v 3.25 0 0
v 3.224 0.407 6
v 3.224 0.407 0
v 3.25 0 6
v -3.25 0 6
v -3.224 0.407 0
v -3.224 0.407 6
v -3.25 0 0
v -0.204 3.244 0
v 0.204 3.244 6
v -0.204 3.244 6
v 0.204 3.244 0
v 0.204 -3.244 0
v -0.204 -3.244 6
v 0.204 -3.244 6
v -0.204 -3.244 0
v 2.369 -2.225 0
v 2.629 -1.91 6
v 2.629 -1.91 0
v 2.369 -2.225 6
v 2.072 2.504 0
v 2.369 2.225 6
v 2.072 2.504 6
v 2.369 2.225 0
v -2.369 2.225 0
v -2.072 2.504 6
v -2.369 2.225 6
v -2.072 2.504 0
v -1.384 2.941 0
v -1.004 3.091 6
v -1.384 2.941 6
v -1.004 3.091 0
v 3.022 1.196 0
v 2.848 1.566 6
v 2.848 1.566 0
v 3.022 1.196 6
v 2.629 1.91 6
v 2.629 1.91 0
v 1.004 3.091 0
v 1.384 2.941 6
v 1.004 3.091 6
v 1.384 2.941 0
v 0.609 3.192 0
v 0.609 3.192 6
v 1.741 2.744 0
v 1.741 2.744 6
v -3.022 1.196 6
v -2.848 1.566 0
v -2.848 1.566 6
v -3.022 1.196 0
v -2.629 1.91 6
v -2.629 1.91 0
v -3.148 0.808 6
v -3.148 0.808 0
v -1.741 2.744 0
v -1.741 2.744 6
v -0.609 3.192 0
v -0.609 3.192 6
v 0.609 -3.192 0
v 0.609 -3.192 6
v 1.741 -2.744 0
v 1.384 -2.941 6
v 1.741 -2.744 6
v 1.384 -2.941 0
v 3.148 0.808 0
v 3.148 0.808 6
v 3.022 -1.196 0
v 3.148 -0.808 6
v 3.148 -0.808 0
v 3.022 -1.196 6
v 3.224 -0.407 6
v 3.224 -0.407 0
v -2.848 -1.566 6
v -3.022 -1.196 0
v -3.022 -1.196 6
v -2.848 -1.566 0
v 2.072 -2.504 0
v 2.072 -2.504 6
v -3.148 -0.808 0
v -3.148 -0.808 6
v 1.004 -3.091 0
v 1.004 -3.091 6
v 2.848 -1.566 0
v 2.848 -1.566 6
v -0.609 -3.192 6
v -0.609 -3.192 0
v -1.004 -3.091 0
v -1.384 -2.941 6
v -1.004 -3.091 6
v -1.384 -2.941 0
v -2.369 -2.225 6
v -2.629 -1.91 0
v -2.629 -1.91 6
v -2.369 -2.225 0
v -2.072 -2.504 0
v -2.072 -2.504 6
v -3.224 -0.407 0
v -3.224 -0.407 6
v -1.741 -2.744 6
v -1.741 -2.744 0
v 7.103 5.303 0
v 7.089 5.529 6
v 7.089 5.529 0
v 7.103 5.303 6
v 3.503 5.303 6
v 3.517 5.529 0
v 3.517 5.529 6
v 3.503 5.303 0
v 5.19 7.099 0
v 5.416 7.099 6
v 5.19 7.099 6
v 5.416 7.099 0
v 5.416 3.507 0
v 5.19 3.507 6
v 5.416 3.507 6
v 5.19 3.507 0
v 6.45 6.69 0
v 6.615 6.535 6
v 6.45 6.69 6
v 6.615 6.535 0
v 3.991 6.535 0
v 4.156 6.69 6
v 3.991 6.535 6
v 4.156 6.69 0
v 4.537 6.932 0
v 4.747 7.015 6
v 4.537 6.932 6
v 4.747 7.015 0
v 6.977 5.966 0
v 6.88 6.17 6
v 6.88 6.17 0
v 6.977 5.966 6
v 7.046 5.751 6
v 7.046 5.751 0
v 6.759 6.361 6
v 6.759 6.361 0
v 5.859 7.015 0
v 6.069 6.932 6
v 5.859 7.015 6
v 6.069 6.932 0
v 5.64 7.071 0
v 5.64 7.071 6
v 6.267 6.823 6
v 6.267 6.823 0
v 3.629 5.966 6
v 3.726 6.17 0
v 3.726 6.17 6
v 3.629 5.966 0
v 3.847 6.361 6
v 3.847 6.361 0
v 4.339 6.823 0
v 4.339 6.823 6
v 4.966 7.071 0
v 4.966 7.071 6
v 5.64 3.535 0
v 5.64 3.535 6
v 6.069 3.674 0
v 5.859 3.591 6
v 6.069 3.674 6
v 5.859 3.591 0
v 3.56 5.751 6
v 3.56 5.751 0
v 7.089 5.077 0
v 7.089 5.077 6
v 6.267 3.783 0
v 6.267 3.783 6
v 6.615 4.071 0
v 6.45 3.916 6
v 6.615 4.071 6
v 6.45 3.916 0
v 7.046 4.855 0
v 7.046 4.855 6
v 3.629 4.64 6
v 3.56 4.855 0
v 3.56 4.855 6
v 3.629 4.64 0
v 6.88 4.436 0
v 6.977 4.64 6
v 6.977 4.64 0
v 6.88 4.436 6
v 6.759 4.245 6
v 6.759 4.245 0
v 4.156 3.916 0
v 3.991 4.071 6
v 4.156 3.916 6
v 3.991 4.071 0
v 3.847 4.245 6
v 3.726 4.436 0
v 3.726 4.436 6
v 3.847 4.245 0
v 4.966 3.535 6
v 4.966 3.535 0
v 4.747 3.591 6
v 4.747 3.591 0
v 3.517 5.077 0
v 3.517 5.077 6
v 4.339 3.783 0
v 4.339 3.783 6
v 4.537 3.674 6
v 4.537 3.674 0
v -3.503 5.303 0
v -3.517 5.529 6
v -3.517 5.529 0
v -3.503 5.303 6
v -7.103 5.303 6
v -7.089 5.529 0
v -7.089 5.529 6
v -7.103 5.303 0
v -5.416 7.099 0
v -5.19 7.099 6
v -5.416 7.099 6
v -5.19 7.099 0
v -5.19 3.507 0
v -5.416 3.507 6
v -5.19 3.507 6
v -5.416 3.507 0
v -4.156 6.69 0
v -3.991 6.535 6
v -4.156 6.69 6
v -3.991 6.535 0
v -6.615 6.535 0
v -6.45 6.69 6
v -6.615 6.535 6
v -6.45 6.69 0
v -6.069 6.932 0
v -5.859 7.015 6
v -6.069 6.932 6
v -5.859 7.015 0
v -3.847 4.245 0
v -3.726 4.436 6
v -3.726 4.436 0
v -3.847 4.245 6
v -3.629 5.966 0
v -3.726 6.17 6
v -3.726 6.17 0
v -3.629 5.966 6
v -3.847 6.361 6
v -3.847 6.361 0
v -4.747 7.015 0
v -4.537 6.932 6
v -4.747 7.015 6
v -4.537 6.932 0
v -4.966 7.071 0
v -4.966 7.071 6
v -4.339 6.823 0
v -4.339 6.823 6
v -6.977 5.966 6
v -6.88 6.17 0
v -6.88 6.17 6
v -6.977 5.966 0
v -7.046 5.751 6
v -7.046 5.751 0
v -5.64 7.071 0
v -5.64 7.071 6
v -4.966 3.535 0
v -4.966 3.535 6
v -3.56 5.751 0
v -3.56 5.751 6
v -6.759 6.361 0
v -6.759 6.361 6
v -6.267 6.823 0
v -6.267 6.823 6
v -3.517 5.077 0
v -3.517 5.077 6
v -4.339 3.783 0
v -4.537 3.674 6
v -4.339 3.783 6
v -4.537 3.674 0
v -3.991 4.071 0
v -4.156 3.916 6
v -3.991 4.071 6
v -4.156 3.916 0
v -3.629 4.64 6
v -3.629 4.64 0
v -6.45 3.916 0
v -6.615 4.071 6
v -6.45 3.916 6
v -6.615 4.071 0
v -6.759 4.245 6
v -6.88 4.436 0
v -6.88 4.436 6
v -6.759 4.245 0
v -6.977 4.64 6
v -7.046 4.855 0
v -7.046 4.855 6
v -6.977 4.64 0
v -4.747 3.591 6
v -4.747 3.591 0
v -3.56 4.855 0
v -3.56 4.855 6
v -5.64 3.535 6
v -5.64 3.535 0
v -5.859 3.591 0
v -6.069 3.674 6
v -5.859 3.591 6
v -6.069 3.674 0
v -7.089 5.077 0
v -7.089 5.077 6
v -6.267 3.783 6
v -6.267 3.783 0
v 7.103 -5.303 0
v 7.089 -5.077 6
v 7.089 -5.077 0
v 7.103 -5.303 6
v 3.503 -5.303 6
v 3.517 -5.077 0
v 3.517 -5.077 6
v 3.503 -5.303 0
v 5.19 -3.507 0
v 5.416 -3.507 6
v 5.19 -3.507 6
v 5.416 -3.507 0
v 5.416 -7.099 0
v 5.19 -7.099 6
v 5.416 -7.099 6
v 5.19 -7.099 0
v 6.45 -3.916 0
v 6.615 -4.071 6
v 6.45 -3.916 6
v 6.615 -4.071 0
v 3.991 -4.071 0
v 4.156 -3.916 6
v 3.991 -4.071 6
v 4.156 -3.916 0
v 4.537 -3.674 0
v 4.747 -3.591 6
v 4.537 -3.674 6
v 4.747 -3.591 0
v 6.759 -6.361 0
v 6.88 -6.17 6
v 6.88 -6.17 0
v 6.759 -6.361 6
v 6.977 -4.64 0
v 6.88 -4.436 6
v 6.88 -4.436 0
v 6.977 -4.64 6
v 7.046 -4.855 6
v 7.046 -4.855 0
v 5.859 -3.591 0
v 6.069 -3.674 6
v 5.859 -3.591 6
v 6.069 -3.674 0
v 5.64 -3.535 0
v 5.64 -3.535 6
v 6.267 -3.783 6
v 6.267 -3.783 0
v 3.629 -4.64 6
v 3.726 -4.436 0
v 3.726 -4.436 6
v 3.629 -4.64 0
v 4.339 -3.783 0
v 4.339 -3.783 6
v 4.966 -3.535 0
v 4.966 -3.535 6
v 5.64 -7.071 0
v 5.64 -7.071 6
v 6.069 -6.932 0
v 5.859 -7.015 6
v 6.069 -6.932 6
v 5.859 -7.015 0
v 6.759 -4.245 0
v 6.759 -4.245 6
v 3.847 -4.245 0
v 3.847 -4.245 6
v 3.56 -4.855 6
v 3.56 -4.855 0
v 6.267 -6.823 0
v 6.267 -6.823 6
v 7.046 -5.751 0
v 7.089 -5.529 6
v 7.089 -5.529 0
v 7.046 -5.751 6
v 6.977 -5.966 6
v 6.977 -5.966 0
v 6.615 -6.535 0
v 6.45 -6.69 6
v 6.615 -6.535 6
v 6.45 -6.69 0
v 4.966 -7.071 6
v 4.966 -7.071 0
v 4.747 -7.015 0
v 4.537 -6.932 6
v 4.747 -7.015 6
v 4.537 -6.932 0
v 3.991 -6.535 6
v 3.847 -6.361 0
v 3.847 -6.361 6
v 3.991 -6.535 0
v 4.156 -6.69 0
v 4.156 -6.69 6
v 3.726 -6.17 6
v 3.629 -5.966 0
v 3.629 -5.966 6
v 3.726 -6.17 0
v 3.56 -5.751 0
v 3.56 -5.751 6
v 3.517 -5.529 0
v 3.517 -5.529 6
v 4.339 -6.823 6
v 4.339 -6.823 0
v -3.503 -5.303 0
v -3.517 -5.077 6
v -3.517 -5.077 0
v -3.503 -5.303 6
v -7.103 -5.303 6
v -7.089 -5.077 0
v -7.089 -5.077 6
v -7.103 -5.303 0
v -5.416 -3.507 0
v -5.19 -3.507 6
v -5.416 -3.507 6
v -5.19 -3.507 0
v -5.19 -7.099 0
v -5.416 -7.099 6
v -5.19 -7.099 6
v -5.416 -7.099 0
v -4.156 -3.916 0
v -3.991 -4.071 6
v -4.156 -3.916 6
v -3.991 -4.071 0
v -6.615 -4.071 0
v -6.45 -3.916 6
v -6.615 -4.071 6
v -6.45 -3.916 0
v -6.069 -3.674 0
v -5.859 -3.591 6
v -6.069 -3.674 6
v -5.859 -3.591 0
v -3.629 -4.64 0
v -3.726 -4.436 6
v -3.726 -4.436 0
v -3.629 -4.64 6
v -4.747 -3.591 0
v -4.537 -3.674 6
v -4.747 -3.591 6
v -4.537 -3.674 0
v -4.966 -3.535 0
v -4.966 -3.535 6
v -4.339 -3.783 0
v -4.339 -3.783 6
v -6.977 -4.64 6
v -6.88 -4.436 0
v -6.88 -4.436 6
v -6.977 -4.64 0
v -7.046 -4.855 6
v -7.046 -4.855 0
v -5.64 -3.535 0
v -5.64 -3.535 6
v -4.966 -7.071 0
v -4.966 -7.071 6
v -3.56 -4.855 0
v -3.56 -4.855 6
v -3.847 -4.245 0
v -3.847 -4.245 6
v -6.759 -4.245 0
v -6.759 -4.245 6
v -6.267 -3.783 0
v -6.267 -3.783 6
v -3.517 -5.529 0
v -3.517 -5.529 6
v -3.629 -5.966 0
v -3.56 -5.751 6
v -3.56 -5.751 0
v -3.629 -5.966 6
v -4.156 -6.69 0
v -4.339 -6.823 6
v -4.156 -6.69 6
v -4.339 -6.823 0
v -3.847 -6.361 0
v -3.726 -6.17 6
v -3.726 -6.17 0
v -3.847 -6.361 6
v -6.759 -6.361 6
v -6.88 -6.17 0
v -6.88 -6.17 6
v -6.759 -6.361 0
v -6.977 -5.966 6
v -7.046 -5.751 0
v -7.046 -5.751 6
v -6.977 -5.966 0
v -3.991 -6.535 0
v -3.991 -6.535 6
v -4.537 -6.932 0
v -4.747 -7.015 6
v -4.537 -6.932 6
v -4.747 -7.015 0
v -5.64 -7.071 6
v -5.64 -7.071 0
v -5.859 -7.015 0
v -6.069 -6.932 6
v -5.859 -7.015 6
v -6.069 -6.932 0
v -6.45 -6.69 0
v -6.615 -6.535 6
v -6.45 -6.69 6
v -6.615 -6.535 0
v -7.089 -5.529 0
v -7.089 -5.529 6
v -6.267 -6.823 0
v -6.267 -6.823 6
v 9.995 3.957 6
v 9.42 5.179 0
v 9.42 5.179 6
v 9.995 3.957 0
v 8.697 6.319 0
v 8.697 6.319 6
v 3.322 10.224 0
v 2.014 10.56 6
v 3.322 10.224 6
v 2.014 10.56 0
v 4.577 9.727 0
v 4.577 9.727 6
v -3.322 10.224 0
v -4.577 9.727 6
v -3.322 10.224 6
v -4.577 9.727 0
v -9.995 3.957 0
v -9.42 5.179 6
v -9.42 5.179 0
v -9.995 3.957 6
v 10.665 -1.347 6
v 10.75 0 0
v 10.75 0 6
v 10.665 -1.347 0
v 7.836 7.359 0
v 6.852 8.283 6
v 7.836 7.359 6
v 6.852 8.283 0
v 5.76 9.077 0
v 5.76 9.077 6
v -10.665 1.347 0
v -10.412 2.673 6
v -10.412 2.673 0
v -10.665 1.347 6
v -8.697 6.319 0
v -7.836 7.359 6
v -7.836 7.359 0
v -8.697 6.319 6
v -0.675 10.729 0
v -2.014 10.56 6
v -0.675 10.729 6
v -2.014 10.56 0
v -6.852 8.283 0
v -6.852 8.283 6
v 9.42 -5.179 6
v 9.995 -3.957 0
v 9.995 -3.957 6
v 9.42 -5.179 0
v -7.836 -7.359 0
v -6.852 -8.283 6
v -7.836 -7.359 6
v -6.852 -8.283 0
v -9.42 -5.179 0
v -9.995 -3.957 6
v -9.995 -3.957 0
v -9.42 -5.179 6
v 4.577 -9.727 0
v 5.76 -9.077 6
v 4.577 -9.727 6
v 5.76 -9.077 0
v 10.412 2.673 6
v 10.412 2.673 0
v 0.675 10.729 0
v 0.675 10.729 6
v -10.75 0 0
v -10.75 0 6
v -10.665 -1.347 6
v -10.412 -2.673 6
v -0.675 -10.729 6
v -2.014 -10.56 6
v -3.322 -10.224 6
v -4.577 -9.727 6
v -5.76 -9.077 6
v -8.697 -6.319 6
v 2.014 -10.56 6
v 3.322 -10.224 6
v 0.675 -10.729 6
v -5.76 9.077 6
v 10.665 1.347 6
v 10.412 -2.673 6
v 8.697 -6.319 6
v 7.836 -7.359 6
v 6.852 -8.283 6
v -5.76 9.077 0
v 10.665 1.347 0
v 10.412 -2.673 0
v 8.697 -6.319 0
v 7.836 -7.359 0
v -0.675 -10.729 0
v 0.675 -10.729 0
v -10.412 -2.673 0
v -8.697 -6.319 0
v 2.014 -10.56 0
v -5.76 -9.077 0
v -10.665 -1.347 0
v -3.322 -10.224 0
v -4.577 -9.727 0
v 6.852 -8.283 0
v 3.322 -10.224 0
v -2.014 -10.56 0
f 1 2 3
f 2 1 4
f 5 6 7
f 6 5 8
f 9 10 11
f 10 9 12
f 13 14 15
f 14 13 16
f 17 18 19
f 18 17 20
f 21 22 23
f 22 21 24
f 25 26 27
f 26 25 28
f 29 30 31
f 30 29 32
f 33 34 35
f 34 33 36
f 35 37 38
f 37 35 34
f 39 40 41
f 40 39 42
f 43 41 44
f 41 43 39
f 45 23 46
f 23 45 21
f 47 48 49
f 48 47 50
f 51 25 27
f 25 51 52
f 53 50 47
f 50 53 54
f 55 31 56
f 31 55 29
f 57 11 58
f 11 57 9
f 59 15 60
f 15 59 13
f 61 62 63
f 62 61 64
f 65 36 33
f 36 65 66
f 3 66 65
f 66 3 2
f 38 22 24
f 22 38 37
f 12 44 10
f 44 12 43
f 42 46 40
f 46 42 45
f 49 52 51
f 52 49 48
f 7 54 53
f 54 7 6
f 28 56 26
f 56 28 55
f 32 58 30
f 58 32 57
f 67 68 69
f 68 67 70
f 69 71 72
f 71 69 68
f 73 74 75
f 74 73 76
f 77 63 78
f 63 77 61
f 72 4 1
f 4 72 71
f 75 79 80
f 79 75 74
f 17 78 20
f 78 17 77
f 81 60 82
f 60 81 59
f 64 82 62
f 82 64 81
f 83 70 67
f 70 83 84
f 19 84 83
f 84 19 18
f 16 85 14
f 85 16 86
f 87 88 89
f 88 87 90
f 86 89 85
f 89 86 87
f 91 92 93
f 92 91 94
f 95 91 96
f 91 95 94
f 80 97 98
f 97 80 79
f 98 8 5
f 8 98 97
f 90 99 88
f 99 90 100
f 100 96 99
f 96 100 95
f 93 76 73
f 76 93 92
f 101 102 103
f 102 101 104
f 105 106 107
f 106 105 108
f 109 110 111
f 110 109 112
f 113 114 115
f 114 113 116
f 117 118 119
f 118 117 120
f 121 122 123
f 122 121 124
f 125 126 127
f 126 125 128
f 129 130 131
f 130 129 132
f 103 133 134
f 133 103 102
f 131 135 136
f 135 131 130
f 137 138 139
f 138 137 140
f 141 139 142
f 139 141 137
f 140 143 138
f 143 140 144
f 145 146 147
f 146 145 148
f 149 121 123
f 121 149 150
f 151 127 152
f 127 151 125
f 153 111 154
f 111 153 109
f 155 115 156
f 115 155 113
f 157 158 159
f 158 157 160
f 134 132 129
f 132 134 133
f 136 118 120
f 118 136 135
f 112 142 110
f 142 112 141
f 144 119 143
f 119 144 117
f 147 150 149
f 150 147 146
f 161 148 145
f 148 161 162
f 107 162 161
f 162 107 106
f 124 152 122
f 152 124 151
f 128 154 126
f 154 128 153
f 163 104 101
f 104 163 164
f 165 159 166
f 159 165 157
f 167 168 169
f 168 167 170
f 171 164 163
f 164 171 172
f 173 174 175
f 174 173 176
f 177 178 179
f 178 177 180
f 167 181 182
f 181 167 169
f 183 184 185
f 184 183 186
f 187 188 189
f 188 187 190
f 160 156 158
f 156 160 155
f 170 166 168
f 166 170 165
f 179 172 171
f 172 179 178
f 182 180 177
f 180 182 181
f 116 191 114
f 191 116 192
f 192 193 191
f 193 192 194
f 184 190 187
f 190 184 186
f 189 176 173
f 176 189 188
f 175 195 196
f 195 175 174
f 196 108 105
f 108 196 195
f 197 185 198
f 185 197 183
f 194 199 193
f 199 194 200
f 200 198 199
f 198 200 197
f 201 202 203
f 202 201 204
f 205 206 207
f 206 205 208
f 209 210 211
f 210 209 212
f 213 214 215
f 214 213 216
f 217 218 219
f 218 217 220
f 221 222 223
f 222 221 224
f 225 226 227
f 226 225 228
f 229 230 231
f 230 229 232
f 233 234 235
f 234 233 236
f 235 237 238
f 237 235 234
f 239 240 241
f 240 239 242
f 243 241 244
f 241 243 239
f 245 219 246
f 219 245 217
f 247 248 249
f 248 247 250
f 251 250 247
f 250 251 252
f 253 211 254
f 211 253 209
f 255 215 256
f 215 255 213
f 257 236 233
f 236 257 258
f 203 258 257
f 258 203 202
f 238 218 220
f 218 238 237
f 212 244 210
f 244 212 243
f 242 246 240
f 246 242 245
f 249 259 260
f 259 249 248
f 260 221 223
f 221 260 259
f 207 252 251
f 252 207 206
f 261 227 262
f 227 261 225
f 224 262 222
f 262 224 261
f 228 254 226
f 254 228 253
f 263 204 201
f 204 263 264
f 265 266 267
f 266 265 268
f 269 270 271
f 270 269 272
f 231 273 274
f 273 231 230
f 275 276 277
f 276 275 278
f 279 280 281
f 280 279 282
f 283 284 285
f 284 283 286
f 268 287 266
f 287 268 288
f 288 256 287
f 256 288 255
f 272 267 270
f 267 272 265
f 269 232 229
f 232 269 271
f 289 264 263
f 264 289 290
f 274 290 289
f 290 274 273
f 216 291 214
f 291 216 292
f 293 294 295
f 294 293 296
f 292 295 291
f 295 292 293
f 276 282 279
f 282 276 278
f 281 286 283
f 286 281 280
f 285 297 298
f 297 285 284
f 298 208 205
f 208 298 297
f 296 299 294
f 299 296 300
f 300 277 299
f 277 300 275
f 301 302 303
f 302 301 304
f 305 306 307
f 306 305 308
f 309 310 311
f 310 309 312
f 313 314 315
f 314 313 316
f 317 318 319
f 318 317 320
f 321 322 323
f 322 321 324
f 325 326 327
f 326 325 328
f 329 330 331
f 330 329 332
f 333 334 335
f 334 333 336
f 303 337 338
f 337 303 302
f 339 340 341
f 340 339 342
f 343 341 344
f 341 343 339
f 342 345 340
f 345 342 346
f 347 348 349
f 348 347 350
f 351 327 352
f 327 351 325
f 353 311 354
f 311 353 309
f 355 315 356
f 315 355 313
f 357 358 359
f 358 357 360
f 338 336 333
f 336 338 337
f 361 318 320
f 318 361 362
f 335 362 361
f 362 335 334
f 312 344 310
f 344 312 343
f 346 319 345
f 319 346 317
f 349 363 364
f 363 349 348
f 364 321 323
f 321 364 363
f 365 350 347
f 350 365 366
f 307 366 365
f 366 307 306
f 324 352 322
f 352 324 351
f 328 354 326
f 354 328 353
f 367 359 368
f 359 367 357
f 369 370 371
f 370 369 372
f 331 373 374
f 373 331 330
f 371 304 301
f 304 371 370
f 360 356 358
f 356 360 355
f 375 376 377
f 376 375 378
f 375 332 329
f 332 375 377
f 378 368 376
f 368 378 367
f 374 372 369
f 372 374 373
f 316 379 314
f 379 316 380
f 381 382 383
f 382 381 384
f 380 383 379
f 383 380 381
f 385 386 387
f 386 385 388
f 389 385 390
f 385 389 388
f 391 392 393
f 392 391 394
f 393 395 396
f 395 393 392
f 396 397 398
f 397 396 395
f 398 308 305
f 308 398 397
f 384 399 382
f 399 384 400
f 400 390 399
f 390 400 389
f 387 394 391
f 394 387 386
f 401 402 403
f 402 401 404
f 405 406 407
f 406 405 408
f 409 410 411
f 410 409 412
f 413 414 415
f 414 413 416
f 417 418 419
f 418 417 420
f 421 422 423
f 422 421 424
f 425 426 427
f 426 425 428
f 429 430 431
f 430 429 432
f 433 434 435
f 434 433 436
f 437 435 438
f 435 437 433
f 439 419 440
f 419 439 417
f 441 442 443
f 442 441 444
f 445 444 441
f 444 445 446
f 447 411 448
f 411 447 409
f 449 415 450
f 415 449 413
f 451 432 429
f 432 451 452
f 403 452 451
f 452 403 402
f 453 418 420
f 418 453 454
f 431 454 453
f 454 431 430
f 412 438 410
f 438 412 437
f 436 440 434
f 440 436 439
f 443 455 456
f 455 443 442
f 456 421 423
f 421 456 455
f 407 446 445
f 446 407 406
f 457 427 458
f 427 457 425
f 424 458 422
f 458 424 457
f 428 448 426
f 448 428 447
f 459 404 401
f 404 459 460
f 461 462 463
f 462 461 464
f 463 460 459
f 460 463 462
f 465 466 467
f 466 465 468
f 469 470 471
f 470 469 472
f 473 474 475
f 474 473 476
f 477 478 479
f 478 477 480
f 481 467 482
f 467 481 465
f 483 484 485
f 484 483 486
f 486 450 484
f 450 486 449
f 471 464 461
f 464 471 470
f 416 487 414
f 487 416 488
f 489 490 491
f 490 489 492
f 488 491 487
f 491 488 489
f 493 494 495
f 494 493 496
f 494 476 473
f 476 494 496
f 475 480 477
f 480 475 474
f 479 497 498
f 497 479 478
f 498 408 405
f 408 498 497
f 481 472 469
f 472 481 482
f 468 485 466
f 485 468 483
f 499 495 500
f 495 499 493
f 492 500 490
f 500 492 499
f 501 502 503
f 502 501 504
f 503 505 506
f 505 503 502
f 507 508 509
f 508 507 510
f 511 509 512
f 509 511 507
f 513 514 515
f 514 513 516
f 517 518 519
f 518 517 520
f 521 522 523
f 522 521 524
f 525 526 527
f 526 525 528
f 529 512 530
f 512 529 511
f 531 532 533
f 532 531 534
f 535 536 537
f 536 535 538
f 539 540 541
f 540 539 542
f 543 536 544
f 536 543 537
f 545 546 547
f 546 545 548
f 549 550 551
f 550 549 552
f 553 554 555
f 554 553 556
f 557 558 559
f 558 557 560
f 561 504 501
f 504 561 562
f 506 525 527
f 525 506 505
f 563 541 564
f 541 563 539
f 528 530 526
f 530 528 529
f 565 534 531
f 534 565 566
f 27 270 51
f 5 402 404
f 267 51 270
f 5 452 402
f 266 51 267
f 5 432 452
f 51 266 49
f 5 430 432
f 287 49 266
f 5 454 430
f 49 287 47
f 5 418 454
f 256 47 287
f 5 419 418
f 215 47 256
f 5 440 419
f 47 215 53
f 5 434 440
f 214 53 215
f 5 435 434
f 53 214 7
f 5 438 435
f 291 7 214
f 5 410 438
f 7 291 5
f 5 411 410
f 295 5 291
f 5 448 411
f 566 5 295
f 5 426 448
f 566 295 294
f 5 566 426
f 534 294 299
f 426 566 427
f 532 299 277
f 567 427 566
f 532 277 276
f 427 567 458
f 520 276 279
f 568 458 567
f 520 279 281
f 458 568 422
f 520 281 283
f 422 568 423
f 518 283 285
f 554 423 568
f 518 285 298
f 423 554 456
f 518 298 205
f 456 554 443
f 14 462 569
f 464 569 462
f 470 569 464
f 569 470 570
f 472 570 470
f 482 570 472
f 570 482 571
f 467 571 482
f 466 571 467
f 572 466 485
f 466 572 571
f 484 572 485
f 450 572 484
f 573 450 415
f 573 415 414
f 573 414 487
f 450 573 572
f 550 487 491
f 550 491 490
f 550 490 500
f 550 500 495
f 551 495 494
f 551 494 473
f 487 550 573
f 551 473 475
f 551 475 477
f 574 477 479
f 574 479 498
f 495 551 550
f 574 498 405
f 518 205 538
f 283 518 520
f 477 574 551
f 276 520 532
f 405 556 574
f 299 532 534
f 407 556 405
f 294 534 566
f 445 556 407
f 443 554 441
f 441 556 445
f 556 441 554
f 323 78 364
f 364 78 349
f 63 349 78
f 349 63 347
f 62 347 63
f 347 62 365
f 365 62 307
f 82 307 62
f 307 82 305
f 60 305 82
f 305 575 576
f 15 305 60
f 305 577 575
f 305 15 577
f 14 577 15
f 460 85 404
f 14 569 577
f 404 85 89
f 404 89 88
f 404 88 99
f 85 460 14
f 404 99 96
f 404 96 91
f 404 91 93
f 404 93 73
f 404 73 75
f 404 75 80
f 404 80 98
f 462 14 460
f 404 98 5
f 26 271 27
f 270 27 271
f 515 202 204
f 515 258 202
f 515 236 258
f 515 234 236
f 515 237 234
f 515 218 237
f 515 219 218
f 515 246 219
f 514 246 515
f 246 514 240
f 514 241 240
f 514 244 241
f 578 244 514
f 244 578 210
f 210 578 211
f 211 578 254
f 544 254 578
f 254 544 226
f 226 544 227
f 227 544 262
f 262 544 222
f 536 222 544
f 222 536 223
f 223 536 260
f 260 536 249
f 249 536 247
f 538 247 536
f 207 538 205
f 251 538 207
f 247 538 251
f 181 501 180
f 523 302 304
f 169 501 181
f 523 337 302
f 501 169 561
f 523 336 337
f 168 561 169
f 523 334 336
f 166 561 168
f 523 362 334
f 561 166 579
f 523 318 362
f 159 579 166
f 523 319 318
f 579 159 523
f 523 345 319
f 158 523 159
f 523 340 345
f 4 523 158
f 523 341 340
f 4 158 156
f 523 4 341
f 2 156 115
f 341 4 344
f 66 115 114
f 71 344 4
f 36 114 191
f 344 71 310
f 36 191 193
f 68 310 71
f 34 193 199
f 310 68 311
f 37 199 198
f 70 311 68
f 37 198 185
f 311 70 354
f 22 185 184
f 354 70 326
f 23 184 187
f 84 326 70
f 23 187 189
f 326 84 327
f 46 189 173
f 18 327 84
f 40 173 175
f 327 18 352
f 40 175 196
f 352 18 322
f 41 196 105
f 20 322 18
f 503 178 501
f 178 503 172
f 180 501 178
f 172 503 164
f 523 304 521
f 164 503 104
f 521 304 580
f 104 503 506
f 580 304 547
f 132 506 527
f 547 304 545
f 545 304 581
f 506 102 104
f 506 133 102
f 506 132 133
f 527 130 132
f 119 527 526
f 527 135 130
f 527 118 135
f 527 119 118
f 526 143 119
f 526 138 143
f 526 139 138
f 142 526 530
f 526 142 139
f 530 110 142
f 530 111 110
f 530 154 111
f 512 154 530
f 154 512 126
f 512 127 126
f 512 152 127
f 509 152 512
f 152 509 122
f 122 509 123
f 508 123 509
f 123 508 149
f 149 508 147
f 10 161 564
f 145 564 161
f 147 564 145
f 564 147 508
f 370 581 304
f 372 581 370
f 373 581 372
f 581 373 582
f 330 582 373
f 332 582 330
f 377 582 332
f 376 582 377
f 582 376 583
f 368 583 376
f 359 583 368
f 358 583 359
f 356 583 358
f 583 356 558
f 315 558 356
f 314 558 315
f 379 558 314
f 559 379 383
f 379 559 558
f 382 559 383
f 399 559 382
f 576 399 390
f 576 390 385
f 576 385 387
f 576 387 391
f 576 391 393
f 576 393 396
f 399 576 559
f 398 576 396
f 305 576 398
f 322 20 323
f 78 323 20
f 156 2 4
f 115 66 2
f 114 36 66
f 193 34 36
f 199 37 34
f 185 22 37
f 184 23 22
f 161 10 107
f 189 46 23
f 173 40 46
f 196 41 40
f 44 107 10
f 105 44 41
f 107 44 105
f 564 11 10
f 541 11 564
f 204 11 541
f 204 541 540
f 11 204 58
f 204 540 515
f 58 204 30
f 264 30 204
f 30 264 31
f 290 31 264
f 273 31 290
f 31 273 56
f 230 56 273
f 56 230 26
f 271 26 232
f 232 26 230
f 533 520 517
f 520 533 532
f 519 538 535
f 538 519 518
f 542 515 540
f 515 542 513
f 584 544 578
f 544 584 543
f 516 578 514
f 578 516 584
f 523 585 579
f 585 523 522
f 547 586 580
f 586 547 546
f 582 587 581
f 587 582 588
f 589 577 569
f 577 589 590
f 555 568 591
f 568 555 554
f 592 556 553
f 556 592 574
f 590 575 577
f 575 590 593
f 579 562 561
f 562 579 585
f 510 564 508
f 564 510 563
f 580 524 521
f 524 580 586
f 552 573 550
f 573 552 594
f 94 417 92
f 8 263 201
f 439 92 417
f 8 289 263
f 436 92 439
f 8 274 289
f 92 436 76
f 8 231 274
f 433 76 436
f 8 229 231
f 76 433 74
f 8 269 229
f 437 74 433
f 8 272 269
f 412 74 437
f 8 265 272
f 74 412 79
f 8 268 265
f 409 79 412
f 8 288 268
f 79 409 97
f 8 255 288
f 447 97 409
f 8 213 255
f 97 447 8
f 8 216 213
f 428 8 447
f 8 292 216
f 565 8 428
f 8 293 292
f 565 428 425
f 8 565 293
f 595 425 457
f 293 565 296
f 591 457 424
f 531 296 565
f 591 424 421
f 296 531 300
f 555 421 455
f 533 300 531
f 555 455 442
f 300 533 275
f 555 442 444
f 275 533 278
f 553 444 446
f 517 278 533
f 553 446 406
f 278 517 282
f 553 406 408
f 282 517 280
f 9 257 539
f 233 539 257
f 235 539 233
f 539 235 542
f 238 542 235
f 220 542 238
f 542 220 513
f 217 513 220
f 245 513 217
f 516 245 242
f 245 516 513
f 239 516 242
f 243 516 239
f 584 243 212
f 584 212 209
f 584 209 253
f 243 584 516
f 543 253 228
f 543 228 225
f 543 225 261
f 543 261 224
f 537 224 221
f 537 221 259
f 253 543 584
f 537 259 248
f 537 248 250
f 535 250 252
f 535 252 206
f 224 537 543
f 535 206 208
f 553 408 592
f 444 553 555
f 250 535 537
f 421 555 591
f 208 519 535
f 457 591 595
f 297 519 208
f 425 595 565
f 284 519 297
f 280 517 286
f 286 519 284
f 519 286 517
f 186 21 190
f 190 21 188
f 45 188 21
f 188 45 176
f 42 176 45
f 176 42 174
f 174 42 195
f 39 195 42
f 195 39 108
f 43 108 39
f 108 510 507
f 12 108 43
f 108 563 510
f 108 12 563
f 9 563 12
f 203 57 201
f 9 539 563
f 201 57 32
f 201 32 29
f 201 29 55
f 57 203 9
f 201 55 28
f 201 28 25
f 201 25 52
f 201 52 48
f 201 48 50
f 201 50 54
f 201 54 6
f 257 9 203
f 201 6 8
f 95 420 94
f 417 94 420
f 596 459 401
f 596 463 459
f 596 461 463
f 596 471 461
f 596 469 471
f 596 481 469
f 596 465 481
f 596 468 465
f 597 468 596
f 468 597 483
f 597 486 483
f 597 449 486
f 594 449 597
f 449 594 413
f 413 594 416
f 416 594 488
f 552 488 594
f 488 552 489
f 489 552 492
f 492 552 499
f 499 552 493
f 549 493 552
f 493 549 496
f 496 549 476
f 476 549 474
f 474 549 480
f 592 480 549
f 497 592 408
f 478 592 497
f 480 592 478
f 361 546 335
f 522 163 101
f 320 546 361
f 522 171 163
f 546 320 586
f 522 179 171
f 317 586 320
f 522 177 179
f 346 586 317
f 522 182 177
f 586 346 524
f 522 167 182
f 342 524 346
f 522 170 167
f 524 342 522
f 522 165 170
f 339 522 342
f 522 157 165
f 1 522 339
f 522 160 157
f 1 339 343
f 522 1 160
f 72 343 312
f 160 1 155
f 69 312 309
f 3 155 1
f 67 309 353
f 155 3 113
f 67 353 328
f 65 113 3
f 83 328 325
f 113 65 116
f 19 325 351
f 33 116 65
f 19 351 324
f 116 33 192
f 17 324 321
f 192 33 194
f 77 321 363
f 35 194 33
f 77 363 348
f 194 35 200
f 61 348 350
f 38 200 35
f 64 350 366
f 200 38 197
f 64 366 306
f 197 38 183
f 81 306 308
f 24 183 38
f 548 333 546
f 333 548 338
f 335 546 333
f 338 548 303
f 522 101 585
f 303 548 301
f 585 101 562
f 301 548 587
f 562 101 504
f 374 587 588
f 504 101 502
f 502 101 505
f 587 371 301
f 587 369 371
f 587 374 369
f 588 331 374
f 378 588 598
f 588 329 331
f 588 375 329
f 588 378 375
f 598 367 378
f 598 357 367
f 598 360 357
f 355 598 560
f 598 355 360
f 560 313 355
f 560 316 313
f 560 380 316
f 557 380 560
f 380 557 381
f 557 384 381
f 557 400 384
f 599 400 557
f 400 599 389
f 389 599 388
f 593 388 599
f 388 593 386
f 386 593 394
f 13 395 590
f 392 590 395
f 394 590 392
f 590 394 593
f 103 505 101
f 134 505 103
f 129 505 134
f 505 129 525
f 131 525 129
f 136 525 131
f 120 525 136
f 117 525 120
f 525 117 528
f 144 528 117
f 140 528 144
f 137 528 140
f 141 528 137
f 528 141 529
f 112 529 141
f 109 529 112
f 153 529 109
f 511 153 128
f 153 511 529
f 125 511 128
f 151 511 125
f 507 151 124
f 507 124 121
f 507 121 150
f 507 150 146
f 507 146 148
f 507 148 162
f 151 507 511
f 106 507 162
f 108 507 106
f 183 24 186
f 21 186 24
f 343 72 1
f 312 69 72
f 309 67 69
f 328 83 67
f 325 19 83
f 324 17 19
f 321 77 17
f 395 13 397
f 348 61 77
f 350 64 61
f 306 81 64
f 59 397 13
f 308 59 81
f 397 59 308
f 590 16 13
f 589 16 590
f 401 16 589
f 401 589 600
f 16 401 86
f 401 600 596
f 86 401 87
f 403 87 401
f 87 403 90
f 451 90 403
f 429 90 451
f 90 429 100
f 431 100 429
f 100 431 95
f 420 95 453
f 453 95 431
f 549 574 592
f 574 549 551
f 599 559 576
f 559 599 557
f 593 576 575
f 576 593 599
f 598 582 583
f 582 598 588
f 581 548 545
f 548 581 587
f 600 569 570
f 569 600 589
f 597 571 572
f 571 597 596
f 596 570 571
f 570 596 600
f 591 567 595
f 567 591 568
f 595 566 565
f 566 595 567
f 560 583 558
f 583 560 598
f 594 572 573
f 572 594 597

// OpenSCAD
$fn = 50;


difference() {
	union() {
		*color(alpha = 1.0000000000, c = "gray") {
			translate(v = [0, 7, 0]) {
				linear_extrude(height = 1) {
					text(font = "Arial:style=Bold", halign = "center", size = 4.5000000000, text = "COMMENT circle main", valign = "center");
				}
			}
		}
		cylinder(h = 6, r = 10.7500000000);
	}
	union() {
		*color(alpha = 1.0000000000, c = "gray") {
			translate(v = [0, 7, 0]) {
				linear_extrude(height = 1) {
					text(font = "Arial:style=Bold", halign = "center", size = 4.5000000000, text = "COMMENT holes main", valign = "center");
				}
			}
		}
		translate(v = [0.0000000000, 0.0000000000, -50.0000000000]) {
			cylinder(h = 100, r = 3.2500000000);
		}
		translate(v = [0.0000000000, 0.0000000000, -50.0000000000]) {
			cylinder(h = 100, r = 3.2500000000);
		}
		translate(v = [0.0000000000, 0.0000000000, -50.0000000000]) {
			cylinder(h = 100, r = 3.2500000000);
		}
		translate(v = [0.0000000000, 0.0000000000, -50.0000000000]) {
			cylinder(h = 100, r = 1.8000000000);
		}
		translate(v = [0.0000000000, 0.0000000000, -50.0000000000]) {
			cylinder(h = 100, r = 1.8000000000);
		}
		translate(v = [0.0000000000, 0.0000000000, -50.0000000000]) {
			cylinder(h = 100, r = 1.8000000000);
		}
		#translate(v = [5.3030000000, 5.3030000000, -50.0000000000]) {
			cylinder(h = 100, r = 1.8000000000);
		}
		#translate(v = [-5.3030000000, 5.3030000000, -50.0000000000]) {
			cylinder(h = 100, r = 1.8000000000);
		}
		#translate(v = [5.3030000000, -5.3030000000, -50.0000000000]) {
			cylinder(h = 100, r = 1.8000000000);
		}
		#translate(v = [-5.3030000000, -5.3030000000, -50.0000000000]) {
			cylinder(h = 100, r = 1.8000000000);
		}
	}
}
